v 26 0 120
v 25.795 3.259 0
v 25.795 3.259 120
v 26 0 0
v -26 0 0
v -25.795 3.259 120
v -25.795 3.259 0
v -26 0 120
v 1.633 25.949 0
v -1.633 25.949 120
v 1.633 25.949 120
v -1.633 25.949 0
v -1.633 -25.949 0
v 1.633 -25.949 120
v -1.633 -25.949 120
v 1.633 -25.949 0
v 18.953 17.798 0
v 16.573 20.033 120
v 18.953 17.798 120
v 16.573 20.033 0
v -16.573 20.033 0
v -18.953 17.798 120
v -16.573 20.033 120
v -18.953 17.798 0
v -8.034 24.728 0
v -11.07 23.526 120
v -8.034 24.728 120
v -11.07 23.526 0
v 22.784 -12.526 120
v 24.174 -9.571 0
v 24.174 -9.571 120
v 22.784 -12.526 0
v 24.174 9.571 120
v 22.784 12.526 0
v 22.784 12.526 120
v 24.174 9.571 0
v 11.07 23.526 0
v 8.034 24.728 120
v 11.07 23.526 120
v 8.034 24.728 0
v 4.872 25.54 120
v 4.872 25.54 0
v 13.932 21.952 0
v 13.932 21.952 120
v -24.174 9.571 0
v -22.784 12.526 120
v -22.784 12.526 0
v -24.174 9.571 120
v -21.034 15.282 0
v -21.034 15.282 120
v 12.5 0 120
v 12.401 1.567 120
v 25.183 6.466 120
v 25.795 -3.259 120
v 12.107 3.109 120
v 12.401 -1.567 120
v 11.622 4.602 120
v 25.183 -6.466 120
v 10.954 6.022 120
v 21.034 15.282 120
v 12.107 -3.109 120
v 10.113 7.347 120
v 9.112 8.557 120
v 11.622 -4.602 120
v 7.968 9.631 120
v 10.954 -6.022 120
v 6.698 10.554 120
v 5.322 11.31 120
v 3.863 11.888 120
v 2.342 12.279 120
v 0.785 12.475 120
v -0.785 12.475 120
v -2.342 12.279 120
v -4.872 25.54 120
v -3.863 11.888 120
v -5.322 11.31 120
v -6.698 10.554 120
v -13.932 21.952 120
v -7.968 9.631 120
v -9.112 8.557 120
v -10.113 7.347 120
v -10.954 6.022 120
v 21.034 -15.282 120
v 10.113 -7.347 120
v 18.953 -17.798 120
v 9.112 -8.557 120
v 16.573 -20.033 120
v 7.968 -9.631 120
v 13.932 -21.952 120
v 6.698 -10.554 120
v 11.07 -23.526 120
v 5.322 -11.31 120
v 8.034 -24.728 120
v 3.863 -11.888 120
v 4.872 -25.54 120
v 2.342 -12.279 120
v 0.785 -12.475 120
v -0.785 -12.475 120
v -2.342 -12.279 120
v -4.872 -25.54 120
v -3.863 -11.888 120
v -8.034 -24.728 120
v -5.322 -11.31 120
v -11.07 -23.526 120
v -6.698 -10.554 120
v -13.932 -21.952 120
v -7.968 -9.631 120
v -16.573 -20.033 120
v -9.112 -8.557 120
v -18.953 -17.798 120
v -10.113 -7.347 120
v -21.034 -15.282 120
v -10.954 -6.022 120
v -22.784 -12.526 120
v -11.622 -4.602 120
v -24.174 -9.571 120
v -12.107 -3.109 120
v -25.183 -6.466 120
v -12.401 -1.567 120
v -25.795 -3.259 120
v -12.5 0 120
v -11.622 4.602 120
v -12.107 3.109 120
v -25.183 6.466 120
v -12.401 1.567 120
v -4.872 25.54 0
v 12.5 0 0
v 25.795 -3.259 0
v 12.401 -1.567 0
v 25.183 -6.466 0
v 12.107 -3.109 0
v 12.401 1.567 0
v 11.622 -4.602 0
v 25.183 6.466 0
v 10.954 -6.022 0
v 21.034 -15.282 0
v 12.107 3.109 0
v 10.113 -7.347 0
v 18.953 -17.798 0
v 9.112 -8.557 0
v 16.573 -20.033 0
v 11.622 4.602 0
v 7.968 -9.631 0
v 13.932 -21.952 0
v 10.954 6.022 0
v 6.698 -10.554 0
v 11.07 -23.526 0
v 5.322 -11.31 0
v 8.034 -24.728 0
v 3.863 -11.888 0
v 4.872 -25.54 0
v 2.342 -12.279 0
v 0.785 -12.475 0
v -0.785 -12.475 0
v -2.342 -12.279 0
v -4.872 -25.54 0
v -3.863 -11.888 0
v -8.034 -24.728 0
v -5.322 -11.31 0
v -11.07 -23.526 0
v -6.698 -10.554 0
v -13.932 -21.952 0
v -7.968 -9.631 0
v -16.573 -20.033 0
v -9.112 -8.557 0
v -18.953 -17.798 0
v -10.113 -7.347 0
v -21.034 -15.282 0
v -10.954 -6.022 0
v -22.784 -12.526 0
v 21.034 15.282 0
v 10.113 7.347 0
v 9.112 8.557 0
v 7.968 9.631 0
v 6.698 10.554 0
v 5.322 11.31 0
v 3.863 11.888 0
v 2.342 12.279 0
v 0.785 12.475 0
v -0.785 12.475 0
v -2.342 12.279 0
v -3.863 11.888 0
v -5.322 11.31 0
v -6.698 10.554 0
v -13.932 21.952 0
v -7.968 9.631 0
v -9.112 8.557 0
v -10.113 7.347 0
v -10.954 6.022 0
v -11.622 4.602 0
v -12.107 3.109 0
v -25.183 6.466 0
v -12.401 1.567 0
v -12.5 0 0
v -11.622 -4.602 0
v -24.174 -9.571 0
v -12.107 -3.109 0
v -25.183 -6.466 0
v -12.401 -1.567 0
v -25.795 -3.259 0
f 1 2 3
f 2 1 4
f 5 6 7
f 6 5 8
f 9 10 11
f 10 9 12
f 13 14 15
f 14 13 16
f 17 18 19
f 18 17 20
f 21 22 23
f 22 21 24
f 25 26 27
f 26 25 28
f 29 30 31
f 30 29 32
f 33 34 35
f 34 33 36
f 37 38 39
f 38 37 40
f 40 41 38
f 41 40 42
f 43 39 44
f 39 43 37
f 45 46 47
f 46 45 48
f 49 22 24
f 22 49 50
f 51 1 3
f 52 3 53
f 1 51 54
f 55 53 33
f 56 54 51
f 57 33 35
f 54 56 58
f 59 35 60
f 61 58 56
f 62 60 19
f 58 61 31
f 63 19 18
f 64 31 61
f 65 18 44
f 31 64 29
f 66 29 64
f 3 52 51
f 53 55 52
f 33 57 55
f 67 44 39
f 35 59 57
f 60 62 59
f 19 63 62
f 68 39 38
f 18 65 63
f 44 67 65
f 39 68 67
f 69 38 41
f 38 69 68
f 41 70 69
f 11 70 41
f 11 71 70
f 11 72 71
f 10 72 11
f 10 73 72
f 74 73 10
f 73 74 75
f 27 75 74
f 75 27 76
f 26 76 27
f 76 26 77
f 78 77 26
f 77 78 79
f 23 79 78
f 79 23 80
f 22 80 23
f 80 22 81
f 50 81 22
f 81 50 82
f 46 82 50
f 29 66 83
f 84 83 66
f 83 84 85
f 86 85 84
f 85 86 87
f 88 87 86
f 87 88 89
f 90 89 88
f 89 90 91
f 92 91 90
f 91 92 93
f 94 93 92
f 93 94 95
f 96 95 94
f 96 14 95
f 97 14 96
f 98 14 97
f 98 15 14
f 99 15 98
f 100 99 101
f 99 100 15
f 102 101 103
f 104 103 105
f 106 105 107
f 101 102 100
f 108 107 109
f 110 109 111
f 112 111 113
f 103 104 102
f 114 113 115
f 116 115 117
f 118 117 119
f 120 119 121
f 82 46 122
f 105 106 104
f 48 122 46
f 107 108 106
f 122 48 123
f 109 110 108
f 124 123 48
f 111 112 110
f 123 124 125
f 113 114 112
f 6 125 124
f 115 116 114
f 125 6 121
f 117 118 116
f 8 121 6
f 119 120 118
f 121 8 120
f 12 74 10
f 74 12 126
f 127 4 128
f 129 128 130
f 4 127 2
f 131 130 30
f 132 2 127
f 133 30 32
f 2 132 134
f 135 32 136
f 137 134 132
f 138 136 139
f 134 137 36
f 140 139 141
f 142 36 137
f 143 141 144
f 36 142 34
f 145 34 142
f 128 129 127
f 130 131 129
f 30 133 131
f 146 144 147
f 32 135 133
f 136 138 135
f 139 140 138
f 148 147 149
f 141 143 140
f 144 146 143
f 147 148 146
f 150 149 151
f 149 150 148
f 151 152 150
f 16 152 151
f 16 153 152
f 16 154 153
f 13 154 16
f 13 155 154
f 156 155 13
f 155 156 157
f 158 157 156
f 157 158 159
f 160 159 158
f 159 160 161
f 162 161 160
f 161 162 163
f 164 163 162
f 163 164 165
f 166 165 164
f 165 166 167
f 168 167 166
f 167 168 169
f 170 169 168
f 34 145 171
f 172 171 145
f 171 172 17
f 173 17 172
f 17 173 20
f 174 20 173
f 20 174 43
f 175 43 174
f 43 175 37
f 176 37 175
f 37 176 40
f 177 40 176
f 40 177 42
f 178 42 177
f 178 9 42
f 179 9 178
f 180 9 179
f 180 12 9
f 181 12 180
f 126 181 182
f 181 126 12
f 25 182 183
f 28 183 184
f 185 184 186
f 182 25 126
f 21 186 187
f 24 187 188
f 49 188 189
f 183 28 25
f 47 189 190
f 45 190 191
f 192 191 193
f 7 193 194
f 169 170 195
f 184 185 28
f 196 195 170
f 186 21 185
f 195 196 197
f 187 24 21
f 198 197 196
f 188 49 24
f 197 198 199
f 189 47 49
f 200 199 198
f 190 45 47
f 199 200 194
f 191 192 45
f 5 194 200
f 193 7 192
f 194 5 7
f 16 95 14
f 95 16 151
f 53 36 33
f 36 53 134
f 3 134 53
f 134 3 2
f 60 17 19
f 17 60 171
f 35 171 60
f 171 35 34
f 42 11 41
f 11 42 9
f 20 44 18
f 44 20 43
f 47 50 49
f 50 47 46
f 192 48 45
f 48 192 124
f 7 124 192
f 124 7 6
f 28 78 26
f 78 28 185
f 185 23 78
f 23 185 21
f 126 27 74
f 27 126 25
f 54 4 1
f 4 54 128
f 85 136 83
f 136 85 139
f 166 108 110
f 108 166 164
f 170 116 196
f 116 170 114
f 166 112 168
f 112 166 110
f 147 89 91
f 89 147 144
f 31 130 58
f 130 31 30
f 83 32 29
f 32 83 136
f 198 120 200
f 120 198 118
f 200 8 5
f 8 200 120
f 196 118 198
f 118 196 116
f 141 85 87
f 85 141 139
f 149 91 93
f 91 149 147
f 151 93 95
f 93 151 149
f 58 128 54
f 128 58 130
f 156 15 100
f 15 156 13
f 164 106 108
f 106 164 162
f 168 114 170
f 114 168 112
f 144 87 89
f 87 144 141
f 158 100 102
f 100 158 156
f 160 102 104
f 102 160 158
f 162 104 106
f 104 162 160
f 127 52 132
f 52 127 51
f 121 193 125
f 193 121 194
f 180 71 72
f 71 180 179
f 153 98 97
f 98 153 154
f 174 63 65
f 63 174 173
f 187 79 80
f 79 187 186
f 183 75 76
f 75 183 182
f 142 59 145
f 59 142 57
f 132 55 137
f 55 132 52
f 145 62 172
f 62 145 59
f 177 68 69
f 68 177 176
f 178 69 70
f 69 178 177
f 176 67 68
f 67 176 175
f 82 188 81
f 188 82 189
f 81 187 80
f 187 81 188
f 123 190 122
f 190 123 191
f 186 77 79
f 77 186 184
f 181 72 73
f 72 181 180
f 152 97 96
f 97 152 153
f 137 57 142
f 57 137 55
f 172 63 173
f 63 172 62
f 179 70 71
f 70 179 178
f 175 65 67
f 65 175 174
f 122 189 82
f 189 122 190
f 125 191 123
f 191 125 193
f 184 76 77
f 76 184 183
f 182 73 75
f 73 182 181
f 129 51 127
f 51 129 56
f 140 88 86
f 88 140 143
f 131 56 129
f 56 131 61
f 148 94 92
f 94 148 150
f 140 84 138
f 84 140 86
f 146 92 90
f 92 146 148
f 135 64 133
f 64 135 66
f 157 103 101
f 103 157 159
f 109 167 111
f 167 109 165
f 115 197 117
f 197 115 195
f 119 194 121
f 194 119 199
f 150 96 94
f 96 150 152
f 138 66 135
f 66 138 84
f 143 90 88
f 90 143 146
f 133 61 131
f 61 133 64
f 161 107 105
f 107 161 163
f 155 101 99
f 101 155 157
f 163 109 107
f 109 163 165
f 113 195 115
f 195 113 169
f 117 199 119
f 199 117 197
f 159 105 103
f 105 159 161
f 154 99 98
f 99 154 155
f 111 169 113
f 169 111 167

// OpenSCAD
$fn=50;

difference() {
    cylinder(120,52/2,52/2);
    cylinder(120,25/2,25/2);
}
